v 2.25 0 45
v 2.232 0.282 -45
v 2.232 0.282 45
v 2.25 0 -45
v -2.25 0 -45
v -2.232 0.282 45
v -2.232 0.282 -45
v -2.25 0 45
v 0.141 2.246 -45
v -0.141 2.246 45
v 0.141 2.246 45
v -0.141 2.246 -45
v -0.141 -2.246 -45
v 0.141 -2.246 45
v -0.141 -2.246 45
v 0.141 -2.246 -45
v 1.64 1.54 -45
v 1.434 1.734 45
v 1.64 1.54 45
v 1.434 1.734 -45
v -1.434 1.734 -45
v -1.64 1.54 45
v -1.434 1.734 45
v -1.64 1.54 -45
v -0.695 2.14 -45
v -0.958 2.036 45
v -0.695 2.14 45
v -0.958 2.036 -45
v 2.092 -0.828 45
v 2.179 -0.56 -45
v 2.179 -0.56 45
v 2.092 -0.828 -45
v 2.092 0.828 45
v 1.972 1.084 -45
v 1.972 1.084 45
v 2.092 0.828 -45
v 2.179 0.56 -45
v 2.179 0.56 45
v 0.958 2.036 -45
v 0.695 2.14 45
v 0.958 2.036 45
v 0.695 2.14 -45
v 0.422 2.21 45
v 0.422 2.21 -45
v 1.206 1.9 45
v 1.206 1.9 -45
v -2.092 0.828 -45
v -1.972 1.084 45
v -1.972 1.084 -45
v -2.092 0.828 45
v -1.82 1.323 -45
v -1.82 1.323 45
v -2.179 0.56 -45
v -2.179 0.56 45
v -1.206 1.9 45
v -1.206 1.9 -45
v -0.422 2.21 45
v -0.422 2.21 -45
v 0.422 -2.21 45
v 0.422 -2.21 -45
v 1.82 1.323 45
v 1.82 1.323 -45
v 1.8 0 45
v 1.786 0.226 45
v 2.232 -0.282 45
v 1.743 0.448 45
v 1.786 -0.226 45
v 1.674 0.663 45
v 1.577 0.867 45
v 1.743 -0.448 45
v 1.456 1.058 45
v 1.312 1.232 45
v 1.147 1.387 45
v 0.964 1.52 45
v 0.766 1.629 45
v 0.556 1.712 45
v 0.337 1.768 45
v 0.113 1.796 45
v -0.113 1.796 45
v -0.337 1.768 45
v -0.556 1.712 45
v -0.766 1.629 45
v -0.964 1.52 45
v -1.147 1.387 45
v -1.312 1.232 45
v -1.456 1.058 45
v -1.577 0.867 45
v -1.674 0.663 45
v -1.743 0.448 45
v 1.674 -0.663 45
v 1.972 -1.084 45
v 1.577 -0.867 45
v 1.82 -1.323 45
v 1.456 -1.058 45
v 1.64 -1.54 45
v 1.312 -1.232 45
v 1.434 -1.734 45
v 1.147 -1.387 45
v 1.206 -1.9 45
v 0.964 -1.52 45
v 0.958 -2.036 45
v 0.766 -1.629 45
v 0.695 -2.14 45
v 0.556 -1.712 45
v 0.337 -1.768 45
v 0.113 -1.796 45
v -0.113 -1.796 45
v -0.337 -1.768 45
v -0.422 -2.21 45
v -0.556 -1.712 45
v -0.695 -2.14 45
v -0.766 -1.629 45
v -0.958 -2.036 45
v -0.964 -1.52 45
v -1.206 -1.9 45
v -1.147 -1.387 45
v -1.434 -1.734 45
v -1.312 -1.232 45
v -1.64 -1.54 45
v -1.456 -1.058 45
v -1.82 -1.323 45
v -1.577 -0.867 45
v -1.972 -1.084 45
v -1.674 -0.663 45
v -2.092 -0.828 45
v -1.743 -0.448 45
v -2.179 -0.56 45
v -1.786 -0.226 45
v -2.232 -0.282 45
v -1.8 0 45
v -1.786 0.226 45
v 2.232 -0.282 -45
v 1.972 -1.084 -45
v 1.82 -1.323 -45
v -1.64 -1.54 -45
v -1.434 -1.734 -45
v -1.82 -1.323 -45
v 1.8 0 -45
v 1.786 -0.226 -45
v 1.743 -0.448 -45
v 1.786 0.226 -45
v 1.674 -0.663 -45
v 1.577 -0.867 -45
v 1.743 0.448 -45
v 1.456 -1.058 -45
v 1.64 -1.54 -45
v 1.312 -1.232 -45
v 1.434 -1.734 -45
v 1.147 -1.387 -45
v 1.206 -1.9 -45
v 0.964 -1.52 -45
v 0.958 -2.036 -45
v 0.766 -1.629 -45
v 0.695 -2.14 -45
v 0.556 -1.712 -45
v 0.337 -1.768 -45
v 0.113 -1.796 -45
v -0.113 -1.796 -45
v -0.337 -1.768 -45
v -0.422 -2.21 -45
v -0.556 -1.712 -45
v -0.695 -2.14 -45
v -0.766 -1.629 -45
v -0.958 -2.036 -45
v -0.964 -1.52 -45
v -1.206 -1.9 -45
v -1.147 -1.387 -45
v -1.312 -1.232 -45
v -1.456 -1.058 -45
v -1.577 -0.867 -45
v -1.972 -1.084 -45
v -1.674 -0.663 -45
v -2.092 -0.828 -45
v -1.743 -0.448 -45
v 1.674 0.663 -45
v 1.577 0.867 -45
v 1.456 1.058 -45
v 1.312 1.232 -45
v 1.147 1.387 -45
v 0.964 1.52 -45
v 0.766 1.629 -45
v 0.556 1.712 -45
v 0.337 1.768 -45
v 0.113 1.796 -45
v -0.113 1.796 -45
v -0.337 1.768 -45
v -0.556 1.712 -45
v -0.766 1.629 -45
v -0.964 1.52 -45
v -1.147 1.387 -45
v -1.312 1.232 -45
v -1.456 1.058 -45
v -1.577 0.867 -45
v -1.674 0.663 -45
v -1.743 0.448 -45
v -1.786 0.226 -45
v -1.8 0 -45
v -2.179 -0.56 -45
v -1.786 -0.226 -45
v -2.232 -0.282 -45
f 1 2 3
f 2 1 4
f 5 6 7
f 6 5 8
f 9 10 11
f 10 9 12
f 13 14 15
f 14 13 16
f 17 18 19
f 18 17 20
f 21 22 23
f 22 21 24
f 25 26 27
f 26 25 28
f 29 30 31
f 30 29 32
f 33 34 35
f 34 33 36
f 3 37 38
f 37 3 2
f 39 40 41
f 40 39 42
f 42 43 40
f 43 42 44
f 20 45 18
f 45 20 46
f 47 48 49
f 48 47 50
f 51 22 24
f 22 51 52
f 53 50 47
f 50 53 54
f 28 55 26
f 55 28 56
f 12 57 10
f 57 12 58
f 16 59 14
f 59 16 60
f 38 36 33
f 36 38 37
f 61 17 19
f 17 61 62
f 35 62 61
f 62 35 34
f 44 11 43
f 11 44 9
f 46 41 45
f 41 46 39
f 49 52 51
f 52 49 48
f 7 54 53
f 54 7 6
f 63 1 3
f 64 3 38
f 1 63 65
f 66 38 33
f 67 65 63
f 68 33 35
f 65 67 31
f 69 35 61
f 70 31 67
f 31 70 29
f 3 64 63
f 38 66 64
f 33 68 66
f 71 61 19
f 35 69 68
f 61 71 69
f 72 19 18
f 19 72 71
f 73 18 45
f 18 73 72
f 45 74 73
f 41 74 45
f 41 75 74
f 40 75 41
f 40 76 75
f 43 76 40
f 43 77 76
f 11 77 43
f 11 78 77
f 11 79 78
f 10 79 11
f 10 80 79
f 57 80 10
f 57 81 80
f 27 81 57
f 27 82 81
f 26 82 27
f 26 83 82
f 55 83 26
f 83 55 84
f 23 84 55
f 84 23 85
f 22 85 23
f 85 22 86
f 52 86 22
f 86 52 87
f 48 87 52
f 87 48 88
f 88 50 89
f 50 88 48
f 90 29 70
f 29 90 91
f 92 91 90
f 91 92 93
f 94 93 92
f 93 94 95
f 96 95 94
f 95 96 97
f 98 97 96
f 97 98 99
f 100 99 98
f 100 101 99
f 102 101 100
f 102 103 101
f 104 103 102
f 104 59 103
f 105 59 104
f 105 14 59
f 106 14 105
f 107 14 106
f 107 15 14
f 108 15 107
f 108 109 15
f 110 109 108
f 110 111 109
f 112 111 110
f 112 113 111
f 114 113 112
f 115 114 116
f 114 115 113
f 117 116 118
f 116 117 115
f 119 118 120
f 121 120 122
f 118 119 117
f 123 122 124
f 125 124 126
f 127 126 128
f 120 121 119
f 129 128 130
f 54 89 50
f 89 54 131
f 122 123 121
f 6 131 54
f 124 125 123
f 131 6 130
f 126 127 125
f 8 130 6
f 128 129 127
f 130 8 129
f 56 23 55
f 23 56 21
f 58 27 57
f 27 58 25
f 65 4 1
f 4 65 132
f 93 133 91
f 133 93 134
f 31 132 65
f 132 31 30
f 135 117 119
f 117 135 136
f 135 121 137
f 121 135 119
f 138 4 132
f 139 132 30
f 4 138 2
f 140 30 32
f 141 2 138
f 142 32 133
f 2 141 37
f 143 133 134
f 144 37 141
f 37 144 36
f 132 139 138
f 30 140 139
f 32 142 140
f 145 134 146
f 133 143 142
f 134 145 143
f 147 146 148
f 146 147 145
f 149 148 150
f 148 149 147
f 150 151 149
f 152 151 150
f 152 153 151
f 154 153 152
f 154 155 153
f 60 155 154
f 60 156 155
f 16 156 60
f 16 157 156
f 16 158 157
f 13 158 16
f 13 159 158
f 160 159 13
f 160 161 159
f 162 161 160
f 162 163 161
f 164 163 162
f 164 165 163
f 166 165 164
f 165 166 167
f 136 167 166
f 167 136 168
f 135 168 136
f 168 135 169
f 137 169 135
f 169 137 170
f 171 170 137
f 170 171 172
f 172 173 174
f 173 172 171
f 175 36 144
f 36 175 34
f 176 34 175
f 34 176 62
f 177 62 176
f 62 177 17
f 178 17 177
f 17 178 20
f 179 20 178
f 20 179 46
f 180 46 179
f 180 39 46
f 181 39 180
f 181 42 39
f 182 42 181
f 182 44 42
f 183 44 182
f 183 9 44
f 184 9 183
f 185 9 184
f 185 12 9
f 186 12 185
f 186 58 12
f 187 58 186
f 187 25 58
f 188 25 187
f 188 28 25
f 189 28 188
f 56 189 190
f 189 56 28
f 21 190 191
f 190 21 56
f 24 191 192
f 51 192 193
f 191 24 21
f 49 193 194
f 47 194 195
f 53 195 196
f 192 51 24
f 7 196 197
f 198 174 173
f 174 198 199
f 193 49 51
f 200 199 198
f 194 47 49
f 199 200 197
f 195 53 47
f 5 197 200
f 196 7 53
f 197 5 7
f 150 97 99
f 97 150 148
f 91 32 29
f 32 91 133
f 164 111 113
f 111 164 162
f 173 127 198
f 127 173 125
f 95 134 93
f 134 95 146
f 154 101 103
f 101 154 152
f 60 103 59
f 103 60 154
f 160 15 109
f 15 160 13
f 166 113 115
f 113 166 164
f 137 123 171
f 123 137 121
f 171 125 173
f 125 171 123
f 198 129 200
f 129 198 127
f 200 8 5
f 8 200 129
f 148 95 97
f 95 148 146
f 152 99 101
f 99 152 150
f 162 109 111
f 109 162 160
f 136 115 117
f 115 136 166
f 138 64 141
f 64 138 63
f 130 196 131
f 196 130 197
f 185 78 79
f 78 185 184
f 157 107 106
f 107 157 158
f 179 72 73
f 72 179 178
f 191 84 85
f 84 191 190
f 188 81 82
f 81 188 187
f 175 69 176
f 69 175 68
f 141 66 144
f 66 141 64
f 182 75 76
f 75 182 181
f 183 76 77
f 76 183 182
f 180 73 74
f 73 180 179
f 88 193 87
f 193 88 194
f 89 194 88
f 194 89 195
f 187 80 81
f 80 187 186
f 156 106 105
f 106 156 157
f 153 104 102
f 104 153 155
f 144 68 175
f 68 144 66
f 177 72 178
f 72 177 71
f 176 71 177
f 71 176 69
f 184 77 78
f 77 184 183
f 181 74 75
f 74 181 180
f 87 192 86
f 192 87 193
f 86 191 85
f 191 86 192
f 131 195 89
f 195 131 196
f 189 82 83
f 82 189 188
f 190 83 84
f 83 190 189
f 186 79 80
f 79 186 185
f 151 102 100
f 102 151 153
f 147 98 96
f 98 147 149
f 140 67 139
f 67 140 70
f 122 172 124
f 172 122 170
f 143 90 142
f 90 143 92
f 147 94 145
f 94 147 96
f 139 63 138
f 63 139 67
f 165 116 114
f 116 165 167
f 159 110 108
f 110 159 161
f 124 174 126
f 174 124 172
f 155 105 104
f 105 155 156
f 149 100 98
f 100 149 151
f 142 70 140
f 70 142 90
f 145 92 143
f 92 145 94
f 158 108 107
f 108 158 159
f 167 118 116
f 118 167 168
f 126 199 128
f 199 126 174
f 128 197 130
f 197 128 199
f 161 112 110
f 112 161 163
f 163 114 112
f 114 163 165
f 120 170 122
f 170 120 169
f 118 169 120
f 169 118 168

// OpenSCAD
$fn = 50;


difference() {
	union() {
		translate(v = [0, 0, -45.0000000000]) {
			cylinder(h = 90, r = 2.2500000000);
		}
	}
	union() {
		translate(v = [0, 0, -100.0000000000]) {
			cylinder(h = 200, r = 1.8000000000);
		}
	}
}
